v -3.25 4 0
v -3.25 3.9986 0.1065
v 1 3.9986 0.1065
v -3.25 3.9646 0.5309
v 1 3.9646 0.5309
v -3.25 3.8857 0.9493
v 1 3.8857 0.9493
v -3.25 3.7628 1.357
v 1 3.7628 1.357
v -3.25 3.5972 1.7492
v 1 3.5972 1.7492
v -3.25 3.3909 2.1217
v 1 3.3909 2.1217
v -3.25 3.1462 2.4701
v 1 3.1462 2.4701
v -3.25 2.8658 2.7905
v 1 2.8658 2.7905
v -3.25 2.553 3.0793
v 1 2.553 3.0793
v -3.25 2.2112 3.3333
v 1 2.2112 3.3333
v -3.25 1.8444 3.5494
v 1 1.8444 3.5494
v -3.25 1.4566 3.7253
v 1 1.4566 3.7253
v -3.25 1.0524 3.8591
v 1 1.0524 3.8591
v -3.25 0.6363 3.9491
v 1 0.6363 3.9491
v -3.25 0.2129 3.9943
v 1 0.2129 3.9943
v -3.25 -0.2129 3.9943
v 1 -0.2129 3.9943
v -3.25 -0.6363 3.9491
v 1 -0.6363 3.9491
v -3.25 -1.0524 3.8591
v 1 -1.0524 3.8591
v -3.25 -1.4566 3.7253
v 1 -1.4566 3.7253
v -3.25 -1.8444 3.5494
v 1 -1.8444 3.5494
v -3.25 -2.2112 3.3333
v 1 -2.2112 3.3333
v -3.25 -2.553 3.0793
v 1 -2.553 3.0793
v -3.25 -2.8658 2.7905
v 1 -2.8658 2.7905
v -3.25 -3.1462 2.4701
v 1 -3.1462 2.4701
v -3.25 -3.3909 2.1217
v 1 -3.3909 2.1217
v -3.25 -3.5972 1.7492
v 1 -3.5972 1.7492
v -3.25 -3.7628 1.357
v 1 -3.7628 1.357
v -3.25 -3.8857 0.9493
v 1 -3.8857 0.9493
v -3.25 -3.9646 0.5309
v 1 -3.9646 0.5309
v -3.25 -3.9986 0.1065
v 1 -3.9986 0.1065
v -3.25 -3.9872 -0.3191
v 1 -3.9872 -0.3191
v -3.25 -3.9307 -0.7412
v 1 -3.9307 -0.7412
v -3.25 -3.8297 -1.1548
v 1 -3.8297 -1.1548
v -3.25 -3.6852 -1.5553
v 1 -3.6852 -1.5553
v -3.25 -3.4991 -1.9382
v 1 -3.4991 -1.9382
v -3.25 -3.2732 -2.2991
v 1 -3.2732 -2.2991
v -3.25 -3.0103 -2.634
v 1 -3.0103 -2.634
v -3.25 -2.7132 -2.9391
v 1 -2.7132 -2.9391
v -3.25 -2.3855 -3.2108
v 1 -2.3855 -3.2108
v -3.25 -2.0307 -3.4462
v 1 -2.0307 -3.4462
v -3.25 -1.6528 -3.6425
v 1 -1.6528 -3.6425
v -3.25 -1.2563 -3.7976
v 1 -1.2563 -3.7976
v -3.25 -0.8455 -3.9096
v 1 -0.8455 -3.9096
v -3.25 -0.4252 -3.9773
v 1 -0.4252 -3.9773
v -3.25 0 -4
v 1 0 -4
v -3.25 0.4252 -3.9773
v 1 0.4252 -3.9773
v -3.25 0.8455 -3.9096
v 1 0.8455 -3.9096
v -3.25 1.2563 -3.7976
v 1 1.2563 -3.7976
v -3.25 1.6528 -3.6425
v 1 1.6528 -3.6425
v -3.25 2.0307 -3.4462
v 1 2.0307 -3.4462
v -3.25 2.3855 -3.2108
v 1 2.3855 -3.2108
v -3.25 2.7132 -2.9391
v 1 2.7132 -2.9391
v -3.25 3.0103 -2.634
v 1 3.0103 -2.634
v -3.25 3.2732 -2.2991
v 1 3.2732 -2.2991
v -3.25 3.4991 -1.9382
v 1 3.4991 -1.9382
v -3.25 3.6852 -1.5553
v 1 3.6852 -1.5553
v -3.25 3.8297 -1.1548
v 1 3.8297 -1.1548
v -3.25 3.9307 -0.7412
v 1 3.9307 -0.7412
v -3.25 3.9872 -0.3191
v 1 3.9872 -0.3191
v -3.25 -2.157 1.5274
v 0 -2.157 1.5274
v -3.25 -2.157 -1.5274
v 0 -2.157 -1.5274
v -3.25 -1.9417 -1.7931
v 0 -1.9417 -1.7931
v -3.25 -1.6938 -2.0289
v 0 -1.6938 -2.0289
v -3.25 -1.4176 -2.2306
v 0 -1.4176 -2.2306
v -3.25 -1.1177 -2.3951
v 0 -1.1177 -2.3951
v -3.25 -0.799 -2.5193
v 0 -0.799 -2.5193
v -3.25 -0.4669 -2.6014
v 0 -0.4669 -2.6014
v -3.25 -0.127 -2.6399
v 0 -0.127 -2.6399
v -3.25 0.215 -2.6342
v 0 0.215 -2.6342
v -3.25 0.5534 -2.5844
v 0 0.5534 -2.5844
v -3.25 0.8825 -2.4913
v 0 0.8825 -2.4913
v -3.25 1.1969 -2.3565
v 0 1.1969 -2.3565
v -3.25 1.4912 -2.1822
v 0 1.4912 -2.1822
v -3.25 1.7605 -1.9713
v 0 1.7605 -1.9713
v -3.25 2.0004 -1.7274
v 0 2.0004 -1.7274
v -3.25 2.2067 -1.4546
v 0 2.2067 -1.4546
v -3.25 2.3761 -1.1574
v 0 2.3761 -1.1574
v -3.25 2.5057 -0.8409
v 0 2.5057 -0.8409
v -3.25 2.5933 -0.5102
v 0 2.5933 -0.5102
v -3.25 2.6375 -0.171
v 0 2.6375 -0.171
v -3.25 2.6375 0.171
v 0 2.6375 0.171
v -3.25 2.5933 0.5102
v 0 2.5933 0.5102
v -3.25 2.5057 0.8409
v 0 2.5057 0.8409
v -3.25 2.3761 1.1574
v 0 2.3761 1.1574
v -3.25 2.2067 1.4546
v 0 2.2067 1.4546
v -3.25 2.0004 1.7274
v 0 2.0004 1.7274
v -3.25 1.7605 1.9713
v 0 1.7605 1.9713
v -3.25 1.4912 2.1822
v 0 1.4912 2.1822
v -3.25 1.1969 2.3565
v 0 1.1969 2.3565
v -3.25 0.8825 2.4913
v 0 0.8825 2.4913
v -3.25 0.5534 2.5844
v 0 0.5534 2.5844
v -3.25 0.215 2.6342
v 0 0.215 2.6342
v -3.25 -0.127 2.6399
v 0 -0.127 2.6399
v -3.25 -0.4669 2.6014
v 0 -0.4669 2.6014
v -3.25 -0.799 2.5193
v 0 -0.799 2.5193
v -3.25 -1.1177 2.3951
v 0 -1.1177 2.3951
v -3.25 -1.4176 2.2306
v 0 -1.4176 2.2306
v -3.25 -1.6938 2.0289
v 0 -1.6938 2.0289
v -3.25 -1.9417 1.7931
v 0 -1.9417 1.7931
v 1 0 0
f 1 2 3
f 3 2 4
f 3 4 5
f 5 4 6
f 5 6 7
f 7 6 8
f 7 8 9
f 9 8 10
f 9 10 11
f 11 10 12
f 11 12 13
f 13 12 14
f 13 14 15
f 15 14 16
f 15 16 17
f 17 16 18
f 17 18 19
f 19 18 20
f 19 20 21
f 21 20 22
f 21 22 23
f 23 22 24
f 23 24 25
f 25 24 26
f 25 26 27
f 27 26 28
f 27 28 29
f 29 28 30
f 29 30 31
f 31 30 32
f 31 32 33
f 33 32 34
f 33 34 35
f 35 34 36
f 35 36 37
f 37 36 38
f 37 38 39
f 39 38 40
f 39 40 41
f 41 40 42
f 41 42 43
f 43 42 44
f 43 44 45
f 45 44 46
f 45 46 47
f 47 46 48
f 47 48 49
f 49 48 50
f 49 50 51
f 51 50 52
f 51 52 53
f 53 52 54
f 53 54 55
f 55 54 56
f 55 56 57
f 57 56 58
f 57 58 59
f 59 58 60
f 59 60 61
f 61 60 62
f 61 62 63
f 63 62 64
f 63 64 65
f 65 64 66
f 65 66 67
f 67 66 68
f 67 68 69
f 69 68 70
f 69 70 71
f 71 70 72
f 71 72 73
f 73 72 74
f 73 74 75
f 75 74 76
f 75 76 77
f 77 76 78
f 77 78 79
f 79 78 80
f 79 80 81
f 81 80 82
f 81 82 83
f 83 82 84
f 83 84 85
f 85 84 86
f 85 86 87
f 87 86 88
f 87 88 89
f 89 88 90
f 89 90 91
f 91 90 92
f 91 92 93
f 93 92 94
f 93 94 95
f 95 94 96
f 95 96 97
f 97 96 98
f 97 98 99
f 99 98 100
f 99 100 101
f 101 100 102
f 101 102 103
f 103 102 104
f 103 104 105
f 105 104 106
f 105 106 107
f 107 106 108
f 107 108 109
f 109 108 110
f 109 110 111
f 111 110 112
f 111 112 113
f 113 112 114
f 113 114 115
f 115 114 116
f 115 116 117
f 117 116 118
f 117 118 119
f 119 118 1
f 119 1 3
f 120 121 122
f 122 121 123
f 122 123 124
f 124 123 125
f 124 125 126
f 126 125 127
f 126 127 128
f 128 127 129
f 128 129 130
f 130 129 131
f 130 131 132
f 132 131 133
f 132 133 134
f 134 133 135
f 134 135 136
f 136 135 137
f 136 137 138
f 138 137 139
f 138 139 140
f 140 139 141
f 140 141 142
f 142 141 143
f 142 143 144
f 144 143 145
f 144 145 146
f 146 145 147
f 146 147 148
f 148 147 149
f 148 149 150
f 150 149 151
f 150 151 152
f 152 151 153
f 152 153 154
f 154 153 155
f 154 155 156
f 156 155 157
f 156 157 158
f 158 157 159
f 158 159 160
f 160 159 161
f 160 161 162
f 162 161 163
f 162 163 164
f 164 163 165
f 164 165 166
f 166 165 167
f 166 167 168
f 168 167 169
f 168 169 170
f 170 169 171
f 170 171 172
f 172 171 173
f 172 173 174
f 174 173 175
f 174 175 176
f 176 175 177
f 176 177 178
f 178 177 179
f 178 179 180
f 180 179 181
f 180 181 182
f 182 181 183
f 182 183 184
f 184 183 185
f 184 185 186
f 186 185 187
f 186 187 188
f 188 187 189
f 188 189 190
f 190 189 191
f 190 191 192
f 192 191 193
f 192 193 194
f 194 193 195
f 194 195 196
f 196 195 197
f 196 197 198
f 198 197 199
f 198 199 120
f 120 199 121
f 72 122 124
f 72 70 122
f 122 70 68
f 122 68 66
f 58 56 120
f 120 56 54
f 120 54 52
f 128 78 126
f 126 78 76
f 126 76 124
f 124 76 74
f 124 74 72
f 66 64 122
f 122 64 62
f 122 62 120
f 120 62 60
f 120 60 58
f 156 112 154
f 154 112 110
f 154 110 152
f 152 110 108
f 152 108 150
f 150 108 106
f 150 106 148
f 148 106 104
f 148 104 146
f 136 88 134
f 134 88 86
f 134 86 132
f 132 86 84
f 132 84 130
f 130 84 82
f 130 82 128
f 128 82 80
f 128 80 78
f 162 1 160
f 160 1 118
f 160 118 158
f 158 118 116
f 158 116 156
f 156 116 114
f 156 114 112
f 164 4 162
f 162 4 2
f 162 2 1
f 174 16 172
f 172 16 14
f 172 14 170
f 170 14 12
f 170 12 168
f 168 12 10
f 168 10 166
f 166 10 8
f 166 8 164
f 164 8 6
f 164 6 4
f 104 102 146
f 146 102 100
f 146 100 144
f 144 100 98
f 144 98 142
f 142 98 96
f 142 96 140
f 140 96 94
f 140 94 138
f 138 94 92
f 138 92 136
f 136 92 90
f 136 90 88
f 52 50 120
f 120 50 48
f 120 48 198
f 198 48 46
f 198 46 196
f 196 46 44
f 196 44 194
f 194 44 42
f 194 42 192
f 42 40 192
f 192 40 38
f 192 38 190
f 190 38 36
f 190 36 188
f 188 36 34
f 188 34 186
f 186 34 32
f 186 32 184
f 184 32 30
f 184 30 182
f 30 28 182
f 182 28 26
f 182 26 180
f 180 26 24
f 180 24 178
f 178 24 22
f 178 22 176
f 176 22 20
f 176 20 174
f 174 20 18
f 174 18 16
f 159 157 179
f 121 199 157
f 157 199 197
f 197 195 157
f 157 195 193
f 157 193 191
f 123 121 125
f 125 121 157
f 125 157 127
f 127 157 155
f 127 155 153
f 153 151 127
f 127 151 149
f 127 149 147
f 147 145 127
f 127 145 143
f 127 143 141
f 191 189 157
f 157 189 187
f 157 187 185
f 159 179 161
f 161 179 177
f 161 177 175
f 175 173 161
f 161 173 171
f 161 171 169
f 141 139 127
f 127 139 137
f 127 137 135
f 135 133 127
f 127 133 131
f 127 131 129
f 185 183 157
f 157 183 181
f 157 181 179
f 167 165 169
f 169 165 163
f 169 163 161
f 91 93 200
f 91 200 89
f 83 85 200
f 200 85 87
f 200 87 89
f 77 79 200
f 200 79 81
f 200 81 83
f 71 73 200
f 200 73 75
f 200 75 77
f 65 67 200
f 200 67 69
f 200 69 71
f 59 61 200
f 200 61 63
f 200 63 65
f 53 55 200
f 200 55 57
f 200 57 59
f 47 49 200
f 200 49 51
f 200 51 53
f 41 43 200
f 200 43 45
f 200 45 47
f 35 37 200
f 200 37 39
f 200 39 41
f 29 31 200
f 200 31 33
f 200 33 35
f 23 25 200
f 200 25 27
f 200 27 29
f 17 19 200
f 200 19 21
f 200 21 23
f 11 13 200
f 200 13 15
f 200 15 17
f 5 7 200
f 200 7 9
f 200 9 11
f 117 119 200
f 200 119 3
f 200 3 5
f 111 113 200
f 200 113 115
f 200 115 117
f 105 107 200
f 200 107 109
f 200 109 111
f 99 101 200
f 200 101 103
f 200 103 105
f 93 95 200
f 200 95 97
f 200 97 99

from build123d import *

# Parameters (mm, degrees)
SKETCH1_R           = 4
BOSS_EXTRUDE1_DEPTH = 3.25
SKETCH2_R           = 4
BOSS_EXTRUDE2_DEPTH = 1


with BuildPart() as part:
    # Sketch1 → Boss-Extrude1 (new body)
    with BuildSketch(Plane(origin=(0, 0, 0), x_dir=(0, 0, -1), z_dir=(1, 0, 0))):
        Circle(SKETCH1_R)
        with BuildLine():
            Line((-1.527350647, -2.157), (1.527350647, -2.157))
            ThreePointArc((1.527350647, -2.157), (0, 2.643), (-1.527350647, -2.157))
        make_face(mode=Mode.SUBTRACT)
    extrude(amount=-BOSS_EXTRUDE1_DEPTH)

    # Sketch2 → Boss-Extrude2 (add)
    with BuildSketch(Plane(origin=(0, 0, 0), x_dir=(0, 0, -1), z_dir=(1, 0, 0))):
        Circle(SKETCH2_R)
    extrude(amount=BOSS_EXTRUDE2_DEPTH)


solid = part.part
